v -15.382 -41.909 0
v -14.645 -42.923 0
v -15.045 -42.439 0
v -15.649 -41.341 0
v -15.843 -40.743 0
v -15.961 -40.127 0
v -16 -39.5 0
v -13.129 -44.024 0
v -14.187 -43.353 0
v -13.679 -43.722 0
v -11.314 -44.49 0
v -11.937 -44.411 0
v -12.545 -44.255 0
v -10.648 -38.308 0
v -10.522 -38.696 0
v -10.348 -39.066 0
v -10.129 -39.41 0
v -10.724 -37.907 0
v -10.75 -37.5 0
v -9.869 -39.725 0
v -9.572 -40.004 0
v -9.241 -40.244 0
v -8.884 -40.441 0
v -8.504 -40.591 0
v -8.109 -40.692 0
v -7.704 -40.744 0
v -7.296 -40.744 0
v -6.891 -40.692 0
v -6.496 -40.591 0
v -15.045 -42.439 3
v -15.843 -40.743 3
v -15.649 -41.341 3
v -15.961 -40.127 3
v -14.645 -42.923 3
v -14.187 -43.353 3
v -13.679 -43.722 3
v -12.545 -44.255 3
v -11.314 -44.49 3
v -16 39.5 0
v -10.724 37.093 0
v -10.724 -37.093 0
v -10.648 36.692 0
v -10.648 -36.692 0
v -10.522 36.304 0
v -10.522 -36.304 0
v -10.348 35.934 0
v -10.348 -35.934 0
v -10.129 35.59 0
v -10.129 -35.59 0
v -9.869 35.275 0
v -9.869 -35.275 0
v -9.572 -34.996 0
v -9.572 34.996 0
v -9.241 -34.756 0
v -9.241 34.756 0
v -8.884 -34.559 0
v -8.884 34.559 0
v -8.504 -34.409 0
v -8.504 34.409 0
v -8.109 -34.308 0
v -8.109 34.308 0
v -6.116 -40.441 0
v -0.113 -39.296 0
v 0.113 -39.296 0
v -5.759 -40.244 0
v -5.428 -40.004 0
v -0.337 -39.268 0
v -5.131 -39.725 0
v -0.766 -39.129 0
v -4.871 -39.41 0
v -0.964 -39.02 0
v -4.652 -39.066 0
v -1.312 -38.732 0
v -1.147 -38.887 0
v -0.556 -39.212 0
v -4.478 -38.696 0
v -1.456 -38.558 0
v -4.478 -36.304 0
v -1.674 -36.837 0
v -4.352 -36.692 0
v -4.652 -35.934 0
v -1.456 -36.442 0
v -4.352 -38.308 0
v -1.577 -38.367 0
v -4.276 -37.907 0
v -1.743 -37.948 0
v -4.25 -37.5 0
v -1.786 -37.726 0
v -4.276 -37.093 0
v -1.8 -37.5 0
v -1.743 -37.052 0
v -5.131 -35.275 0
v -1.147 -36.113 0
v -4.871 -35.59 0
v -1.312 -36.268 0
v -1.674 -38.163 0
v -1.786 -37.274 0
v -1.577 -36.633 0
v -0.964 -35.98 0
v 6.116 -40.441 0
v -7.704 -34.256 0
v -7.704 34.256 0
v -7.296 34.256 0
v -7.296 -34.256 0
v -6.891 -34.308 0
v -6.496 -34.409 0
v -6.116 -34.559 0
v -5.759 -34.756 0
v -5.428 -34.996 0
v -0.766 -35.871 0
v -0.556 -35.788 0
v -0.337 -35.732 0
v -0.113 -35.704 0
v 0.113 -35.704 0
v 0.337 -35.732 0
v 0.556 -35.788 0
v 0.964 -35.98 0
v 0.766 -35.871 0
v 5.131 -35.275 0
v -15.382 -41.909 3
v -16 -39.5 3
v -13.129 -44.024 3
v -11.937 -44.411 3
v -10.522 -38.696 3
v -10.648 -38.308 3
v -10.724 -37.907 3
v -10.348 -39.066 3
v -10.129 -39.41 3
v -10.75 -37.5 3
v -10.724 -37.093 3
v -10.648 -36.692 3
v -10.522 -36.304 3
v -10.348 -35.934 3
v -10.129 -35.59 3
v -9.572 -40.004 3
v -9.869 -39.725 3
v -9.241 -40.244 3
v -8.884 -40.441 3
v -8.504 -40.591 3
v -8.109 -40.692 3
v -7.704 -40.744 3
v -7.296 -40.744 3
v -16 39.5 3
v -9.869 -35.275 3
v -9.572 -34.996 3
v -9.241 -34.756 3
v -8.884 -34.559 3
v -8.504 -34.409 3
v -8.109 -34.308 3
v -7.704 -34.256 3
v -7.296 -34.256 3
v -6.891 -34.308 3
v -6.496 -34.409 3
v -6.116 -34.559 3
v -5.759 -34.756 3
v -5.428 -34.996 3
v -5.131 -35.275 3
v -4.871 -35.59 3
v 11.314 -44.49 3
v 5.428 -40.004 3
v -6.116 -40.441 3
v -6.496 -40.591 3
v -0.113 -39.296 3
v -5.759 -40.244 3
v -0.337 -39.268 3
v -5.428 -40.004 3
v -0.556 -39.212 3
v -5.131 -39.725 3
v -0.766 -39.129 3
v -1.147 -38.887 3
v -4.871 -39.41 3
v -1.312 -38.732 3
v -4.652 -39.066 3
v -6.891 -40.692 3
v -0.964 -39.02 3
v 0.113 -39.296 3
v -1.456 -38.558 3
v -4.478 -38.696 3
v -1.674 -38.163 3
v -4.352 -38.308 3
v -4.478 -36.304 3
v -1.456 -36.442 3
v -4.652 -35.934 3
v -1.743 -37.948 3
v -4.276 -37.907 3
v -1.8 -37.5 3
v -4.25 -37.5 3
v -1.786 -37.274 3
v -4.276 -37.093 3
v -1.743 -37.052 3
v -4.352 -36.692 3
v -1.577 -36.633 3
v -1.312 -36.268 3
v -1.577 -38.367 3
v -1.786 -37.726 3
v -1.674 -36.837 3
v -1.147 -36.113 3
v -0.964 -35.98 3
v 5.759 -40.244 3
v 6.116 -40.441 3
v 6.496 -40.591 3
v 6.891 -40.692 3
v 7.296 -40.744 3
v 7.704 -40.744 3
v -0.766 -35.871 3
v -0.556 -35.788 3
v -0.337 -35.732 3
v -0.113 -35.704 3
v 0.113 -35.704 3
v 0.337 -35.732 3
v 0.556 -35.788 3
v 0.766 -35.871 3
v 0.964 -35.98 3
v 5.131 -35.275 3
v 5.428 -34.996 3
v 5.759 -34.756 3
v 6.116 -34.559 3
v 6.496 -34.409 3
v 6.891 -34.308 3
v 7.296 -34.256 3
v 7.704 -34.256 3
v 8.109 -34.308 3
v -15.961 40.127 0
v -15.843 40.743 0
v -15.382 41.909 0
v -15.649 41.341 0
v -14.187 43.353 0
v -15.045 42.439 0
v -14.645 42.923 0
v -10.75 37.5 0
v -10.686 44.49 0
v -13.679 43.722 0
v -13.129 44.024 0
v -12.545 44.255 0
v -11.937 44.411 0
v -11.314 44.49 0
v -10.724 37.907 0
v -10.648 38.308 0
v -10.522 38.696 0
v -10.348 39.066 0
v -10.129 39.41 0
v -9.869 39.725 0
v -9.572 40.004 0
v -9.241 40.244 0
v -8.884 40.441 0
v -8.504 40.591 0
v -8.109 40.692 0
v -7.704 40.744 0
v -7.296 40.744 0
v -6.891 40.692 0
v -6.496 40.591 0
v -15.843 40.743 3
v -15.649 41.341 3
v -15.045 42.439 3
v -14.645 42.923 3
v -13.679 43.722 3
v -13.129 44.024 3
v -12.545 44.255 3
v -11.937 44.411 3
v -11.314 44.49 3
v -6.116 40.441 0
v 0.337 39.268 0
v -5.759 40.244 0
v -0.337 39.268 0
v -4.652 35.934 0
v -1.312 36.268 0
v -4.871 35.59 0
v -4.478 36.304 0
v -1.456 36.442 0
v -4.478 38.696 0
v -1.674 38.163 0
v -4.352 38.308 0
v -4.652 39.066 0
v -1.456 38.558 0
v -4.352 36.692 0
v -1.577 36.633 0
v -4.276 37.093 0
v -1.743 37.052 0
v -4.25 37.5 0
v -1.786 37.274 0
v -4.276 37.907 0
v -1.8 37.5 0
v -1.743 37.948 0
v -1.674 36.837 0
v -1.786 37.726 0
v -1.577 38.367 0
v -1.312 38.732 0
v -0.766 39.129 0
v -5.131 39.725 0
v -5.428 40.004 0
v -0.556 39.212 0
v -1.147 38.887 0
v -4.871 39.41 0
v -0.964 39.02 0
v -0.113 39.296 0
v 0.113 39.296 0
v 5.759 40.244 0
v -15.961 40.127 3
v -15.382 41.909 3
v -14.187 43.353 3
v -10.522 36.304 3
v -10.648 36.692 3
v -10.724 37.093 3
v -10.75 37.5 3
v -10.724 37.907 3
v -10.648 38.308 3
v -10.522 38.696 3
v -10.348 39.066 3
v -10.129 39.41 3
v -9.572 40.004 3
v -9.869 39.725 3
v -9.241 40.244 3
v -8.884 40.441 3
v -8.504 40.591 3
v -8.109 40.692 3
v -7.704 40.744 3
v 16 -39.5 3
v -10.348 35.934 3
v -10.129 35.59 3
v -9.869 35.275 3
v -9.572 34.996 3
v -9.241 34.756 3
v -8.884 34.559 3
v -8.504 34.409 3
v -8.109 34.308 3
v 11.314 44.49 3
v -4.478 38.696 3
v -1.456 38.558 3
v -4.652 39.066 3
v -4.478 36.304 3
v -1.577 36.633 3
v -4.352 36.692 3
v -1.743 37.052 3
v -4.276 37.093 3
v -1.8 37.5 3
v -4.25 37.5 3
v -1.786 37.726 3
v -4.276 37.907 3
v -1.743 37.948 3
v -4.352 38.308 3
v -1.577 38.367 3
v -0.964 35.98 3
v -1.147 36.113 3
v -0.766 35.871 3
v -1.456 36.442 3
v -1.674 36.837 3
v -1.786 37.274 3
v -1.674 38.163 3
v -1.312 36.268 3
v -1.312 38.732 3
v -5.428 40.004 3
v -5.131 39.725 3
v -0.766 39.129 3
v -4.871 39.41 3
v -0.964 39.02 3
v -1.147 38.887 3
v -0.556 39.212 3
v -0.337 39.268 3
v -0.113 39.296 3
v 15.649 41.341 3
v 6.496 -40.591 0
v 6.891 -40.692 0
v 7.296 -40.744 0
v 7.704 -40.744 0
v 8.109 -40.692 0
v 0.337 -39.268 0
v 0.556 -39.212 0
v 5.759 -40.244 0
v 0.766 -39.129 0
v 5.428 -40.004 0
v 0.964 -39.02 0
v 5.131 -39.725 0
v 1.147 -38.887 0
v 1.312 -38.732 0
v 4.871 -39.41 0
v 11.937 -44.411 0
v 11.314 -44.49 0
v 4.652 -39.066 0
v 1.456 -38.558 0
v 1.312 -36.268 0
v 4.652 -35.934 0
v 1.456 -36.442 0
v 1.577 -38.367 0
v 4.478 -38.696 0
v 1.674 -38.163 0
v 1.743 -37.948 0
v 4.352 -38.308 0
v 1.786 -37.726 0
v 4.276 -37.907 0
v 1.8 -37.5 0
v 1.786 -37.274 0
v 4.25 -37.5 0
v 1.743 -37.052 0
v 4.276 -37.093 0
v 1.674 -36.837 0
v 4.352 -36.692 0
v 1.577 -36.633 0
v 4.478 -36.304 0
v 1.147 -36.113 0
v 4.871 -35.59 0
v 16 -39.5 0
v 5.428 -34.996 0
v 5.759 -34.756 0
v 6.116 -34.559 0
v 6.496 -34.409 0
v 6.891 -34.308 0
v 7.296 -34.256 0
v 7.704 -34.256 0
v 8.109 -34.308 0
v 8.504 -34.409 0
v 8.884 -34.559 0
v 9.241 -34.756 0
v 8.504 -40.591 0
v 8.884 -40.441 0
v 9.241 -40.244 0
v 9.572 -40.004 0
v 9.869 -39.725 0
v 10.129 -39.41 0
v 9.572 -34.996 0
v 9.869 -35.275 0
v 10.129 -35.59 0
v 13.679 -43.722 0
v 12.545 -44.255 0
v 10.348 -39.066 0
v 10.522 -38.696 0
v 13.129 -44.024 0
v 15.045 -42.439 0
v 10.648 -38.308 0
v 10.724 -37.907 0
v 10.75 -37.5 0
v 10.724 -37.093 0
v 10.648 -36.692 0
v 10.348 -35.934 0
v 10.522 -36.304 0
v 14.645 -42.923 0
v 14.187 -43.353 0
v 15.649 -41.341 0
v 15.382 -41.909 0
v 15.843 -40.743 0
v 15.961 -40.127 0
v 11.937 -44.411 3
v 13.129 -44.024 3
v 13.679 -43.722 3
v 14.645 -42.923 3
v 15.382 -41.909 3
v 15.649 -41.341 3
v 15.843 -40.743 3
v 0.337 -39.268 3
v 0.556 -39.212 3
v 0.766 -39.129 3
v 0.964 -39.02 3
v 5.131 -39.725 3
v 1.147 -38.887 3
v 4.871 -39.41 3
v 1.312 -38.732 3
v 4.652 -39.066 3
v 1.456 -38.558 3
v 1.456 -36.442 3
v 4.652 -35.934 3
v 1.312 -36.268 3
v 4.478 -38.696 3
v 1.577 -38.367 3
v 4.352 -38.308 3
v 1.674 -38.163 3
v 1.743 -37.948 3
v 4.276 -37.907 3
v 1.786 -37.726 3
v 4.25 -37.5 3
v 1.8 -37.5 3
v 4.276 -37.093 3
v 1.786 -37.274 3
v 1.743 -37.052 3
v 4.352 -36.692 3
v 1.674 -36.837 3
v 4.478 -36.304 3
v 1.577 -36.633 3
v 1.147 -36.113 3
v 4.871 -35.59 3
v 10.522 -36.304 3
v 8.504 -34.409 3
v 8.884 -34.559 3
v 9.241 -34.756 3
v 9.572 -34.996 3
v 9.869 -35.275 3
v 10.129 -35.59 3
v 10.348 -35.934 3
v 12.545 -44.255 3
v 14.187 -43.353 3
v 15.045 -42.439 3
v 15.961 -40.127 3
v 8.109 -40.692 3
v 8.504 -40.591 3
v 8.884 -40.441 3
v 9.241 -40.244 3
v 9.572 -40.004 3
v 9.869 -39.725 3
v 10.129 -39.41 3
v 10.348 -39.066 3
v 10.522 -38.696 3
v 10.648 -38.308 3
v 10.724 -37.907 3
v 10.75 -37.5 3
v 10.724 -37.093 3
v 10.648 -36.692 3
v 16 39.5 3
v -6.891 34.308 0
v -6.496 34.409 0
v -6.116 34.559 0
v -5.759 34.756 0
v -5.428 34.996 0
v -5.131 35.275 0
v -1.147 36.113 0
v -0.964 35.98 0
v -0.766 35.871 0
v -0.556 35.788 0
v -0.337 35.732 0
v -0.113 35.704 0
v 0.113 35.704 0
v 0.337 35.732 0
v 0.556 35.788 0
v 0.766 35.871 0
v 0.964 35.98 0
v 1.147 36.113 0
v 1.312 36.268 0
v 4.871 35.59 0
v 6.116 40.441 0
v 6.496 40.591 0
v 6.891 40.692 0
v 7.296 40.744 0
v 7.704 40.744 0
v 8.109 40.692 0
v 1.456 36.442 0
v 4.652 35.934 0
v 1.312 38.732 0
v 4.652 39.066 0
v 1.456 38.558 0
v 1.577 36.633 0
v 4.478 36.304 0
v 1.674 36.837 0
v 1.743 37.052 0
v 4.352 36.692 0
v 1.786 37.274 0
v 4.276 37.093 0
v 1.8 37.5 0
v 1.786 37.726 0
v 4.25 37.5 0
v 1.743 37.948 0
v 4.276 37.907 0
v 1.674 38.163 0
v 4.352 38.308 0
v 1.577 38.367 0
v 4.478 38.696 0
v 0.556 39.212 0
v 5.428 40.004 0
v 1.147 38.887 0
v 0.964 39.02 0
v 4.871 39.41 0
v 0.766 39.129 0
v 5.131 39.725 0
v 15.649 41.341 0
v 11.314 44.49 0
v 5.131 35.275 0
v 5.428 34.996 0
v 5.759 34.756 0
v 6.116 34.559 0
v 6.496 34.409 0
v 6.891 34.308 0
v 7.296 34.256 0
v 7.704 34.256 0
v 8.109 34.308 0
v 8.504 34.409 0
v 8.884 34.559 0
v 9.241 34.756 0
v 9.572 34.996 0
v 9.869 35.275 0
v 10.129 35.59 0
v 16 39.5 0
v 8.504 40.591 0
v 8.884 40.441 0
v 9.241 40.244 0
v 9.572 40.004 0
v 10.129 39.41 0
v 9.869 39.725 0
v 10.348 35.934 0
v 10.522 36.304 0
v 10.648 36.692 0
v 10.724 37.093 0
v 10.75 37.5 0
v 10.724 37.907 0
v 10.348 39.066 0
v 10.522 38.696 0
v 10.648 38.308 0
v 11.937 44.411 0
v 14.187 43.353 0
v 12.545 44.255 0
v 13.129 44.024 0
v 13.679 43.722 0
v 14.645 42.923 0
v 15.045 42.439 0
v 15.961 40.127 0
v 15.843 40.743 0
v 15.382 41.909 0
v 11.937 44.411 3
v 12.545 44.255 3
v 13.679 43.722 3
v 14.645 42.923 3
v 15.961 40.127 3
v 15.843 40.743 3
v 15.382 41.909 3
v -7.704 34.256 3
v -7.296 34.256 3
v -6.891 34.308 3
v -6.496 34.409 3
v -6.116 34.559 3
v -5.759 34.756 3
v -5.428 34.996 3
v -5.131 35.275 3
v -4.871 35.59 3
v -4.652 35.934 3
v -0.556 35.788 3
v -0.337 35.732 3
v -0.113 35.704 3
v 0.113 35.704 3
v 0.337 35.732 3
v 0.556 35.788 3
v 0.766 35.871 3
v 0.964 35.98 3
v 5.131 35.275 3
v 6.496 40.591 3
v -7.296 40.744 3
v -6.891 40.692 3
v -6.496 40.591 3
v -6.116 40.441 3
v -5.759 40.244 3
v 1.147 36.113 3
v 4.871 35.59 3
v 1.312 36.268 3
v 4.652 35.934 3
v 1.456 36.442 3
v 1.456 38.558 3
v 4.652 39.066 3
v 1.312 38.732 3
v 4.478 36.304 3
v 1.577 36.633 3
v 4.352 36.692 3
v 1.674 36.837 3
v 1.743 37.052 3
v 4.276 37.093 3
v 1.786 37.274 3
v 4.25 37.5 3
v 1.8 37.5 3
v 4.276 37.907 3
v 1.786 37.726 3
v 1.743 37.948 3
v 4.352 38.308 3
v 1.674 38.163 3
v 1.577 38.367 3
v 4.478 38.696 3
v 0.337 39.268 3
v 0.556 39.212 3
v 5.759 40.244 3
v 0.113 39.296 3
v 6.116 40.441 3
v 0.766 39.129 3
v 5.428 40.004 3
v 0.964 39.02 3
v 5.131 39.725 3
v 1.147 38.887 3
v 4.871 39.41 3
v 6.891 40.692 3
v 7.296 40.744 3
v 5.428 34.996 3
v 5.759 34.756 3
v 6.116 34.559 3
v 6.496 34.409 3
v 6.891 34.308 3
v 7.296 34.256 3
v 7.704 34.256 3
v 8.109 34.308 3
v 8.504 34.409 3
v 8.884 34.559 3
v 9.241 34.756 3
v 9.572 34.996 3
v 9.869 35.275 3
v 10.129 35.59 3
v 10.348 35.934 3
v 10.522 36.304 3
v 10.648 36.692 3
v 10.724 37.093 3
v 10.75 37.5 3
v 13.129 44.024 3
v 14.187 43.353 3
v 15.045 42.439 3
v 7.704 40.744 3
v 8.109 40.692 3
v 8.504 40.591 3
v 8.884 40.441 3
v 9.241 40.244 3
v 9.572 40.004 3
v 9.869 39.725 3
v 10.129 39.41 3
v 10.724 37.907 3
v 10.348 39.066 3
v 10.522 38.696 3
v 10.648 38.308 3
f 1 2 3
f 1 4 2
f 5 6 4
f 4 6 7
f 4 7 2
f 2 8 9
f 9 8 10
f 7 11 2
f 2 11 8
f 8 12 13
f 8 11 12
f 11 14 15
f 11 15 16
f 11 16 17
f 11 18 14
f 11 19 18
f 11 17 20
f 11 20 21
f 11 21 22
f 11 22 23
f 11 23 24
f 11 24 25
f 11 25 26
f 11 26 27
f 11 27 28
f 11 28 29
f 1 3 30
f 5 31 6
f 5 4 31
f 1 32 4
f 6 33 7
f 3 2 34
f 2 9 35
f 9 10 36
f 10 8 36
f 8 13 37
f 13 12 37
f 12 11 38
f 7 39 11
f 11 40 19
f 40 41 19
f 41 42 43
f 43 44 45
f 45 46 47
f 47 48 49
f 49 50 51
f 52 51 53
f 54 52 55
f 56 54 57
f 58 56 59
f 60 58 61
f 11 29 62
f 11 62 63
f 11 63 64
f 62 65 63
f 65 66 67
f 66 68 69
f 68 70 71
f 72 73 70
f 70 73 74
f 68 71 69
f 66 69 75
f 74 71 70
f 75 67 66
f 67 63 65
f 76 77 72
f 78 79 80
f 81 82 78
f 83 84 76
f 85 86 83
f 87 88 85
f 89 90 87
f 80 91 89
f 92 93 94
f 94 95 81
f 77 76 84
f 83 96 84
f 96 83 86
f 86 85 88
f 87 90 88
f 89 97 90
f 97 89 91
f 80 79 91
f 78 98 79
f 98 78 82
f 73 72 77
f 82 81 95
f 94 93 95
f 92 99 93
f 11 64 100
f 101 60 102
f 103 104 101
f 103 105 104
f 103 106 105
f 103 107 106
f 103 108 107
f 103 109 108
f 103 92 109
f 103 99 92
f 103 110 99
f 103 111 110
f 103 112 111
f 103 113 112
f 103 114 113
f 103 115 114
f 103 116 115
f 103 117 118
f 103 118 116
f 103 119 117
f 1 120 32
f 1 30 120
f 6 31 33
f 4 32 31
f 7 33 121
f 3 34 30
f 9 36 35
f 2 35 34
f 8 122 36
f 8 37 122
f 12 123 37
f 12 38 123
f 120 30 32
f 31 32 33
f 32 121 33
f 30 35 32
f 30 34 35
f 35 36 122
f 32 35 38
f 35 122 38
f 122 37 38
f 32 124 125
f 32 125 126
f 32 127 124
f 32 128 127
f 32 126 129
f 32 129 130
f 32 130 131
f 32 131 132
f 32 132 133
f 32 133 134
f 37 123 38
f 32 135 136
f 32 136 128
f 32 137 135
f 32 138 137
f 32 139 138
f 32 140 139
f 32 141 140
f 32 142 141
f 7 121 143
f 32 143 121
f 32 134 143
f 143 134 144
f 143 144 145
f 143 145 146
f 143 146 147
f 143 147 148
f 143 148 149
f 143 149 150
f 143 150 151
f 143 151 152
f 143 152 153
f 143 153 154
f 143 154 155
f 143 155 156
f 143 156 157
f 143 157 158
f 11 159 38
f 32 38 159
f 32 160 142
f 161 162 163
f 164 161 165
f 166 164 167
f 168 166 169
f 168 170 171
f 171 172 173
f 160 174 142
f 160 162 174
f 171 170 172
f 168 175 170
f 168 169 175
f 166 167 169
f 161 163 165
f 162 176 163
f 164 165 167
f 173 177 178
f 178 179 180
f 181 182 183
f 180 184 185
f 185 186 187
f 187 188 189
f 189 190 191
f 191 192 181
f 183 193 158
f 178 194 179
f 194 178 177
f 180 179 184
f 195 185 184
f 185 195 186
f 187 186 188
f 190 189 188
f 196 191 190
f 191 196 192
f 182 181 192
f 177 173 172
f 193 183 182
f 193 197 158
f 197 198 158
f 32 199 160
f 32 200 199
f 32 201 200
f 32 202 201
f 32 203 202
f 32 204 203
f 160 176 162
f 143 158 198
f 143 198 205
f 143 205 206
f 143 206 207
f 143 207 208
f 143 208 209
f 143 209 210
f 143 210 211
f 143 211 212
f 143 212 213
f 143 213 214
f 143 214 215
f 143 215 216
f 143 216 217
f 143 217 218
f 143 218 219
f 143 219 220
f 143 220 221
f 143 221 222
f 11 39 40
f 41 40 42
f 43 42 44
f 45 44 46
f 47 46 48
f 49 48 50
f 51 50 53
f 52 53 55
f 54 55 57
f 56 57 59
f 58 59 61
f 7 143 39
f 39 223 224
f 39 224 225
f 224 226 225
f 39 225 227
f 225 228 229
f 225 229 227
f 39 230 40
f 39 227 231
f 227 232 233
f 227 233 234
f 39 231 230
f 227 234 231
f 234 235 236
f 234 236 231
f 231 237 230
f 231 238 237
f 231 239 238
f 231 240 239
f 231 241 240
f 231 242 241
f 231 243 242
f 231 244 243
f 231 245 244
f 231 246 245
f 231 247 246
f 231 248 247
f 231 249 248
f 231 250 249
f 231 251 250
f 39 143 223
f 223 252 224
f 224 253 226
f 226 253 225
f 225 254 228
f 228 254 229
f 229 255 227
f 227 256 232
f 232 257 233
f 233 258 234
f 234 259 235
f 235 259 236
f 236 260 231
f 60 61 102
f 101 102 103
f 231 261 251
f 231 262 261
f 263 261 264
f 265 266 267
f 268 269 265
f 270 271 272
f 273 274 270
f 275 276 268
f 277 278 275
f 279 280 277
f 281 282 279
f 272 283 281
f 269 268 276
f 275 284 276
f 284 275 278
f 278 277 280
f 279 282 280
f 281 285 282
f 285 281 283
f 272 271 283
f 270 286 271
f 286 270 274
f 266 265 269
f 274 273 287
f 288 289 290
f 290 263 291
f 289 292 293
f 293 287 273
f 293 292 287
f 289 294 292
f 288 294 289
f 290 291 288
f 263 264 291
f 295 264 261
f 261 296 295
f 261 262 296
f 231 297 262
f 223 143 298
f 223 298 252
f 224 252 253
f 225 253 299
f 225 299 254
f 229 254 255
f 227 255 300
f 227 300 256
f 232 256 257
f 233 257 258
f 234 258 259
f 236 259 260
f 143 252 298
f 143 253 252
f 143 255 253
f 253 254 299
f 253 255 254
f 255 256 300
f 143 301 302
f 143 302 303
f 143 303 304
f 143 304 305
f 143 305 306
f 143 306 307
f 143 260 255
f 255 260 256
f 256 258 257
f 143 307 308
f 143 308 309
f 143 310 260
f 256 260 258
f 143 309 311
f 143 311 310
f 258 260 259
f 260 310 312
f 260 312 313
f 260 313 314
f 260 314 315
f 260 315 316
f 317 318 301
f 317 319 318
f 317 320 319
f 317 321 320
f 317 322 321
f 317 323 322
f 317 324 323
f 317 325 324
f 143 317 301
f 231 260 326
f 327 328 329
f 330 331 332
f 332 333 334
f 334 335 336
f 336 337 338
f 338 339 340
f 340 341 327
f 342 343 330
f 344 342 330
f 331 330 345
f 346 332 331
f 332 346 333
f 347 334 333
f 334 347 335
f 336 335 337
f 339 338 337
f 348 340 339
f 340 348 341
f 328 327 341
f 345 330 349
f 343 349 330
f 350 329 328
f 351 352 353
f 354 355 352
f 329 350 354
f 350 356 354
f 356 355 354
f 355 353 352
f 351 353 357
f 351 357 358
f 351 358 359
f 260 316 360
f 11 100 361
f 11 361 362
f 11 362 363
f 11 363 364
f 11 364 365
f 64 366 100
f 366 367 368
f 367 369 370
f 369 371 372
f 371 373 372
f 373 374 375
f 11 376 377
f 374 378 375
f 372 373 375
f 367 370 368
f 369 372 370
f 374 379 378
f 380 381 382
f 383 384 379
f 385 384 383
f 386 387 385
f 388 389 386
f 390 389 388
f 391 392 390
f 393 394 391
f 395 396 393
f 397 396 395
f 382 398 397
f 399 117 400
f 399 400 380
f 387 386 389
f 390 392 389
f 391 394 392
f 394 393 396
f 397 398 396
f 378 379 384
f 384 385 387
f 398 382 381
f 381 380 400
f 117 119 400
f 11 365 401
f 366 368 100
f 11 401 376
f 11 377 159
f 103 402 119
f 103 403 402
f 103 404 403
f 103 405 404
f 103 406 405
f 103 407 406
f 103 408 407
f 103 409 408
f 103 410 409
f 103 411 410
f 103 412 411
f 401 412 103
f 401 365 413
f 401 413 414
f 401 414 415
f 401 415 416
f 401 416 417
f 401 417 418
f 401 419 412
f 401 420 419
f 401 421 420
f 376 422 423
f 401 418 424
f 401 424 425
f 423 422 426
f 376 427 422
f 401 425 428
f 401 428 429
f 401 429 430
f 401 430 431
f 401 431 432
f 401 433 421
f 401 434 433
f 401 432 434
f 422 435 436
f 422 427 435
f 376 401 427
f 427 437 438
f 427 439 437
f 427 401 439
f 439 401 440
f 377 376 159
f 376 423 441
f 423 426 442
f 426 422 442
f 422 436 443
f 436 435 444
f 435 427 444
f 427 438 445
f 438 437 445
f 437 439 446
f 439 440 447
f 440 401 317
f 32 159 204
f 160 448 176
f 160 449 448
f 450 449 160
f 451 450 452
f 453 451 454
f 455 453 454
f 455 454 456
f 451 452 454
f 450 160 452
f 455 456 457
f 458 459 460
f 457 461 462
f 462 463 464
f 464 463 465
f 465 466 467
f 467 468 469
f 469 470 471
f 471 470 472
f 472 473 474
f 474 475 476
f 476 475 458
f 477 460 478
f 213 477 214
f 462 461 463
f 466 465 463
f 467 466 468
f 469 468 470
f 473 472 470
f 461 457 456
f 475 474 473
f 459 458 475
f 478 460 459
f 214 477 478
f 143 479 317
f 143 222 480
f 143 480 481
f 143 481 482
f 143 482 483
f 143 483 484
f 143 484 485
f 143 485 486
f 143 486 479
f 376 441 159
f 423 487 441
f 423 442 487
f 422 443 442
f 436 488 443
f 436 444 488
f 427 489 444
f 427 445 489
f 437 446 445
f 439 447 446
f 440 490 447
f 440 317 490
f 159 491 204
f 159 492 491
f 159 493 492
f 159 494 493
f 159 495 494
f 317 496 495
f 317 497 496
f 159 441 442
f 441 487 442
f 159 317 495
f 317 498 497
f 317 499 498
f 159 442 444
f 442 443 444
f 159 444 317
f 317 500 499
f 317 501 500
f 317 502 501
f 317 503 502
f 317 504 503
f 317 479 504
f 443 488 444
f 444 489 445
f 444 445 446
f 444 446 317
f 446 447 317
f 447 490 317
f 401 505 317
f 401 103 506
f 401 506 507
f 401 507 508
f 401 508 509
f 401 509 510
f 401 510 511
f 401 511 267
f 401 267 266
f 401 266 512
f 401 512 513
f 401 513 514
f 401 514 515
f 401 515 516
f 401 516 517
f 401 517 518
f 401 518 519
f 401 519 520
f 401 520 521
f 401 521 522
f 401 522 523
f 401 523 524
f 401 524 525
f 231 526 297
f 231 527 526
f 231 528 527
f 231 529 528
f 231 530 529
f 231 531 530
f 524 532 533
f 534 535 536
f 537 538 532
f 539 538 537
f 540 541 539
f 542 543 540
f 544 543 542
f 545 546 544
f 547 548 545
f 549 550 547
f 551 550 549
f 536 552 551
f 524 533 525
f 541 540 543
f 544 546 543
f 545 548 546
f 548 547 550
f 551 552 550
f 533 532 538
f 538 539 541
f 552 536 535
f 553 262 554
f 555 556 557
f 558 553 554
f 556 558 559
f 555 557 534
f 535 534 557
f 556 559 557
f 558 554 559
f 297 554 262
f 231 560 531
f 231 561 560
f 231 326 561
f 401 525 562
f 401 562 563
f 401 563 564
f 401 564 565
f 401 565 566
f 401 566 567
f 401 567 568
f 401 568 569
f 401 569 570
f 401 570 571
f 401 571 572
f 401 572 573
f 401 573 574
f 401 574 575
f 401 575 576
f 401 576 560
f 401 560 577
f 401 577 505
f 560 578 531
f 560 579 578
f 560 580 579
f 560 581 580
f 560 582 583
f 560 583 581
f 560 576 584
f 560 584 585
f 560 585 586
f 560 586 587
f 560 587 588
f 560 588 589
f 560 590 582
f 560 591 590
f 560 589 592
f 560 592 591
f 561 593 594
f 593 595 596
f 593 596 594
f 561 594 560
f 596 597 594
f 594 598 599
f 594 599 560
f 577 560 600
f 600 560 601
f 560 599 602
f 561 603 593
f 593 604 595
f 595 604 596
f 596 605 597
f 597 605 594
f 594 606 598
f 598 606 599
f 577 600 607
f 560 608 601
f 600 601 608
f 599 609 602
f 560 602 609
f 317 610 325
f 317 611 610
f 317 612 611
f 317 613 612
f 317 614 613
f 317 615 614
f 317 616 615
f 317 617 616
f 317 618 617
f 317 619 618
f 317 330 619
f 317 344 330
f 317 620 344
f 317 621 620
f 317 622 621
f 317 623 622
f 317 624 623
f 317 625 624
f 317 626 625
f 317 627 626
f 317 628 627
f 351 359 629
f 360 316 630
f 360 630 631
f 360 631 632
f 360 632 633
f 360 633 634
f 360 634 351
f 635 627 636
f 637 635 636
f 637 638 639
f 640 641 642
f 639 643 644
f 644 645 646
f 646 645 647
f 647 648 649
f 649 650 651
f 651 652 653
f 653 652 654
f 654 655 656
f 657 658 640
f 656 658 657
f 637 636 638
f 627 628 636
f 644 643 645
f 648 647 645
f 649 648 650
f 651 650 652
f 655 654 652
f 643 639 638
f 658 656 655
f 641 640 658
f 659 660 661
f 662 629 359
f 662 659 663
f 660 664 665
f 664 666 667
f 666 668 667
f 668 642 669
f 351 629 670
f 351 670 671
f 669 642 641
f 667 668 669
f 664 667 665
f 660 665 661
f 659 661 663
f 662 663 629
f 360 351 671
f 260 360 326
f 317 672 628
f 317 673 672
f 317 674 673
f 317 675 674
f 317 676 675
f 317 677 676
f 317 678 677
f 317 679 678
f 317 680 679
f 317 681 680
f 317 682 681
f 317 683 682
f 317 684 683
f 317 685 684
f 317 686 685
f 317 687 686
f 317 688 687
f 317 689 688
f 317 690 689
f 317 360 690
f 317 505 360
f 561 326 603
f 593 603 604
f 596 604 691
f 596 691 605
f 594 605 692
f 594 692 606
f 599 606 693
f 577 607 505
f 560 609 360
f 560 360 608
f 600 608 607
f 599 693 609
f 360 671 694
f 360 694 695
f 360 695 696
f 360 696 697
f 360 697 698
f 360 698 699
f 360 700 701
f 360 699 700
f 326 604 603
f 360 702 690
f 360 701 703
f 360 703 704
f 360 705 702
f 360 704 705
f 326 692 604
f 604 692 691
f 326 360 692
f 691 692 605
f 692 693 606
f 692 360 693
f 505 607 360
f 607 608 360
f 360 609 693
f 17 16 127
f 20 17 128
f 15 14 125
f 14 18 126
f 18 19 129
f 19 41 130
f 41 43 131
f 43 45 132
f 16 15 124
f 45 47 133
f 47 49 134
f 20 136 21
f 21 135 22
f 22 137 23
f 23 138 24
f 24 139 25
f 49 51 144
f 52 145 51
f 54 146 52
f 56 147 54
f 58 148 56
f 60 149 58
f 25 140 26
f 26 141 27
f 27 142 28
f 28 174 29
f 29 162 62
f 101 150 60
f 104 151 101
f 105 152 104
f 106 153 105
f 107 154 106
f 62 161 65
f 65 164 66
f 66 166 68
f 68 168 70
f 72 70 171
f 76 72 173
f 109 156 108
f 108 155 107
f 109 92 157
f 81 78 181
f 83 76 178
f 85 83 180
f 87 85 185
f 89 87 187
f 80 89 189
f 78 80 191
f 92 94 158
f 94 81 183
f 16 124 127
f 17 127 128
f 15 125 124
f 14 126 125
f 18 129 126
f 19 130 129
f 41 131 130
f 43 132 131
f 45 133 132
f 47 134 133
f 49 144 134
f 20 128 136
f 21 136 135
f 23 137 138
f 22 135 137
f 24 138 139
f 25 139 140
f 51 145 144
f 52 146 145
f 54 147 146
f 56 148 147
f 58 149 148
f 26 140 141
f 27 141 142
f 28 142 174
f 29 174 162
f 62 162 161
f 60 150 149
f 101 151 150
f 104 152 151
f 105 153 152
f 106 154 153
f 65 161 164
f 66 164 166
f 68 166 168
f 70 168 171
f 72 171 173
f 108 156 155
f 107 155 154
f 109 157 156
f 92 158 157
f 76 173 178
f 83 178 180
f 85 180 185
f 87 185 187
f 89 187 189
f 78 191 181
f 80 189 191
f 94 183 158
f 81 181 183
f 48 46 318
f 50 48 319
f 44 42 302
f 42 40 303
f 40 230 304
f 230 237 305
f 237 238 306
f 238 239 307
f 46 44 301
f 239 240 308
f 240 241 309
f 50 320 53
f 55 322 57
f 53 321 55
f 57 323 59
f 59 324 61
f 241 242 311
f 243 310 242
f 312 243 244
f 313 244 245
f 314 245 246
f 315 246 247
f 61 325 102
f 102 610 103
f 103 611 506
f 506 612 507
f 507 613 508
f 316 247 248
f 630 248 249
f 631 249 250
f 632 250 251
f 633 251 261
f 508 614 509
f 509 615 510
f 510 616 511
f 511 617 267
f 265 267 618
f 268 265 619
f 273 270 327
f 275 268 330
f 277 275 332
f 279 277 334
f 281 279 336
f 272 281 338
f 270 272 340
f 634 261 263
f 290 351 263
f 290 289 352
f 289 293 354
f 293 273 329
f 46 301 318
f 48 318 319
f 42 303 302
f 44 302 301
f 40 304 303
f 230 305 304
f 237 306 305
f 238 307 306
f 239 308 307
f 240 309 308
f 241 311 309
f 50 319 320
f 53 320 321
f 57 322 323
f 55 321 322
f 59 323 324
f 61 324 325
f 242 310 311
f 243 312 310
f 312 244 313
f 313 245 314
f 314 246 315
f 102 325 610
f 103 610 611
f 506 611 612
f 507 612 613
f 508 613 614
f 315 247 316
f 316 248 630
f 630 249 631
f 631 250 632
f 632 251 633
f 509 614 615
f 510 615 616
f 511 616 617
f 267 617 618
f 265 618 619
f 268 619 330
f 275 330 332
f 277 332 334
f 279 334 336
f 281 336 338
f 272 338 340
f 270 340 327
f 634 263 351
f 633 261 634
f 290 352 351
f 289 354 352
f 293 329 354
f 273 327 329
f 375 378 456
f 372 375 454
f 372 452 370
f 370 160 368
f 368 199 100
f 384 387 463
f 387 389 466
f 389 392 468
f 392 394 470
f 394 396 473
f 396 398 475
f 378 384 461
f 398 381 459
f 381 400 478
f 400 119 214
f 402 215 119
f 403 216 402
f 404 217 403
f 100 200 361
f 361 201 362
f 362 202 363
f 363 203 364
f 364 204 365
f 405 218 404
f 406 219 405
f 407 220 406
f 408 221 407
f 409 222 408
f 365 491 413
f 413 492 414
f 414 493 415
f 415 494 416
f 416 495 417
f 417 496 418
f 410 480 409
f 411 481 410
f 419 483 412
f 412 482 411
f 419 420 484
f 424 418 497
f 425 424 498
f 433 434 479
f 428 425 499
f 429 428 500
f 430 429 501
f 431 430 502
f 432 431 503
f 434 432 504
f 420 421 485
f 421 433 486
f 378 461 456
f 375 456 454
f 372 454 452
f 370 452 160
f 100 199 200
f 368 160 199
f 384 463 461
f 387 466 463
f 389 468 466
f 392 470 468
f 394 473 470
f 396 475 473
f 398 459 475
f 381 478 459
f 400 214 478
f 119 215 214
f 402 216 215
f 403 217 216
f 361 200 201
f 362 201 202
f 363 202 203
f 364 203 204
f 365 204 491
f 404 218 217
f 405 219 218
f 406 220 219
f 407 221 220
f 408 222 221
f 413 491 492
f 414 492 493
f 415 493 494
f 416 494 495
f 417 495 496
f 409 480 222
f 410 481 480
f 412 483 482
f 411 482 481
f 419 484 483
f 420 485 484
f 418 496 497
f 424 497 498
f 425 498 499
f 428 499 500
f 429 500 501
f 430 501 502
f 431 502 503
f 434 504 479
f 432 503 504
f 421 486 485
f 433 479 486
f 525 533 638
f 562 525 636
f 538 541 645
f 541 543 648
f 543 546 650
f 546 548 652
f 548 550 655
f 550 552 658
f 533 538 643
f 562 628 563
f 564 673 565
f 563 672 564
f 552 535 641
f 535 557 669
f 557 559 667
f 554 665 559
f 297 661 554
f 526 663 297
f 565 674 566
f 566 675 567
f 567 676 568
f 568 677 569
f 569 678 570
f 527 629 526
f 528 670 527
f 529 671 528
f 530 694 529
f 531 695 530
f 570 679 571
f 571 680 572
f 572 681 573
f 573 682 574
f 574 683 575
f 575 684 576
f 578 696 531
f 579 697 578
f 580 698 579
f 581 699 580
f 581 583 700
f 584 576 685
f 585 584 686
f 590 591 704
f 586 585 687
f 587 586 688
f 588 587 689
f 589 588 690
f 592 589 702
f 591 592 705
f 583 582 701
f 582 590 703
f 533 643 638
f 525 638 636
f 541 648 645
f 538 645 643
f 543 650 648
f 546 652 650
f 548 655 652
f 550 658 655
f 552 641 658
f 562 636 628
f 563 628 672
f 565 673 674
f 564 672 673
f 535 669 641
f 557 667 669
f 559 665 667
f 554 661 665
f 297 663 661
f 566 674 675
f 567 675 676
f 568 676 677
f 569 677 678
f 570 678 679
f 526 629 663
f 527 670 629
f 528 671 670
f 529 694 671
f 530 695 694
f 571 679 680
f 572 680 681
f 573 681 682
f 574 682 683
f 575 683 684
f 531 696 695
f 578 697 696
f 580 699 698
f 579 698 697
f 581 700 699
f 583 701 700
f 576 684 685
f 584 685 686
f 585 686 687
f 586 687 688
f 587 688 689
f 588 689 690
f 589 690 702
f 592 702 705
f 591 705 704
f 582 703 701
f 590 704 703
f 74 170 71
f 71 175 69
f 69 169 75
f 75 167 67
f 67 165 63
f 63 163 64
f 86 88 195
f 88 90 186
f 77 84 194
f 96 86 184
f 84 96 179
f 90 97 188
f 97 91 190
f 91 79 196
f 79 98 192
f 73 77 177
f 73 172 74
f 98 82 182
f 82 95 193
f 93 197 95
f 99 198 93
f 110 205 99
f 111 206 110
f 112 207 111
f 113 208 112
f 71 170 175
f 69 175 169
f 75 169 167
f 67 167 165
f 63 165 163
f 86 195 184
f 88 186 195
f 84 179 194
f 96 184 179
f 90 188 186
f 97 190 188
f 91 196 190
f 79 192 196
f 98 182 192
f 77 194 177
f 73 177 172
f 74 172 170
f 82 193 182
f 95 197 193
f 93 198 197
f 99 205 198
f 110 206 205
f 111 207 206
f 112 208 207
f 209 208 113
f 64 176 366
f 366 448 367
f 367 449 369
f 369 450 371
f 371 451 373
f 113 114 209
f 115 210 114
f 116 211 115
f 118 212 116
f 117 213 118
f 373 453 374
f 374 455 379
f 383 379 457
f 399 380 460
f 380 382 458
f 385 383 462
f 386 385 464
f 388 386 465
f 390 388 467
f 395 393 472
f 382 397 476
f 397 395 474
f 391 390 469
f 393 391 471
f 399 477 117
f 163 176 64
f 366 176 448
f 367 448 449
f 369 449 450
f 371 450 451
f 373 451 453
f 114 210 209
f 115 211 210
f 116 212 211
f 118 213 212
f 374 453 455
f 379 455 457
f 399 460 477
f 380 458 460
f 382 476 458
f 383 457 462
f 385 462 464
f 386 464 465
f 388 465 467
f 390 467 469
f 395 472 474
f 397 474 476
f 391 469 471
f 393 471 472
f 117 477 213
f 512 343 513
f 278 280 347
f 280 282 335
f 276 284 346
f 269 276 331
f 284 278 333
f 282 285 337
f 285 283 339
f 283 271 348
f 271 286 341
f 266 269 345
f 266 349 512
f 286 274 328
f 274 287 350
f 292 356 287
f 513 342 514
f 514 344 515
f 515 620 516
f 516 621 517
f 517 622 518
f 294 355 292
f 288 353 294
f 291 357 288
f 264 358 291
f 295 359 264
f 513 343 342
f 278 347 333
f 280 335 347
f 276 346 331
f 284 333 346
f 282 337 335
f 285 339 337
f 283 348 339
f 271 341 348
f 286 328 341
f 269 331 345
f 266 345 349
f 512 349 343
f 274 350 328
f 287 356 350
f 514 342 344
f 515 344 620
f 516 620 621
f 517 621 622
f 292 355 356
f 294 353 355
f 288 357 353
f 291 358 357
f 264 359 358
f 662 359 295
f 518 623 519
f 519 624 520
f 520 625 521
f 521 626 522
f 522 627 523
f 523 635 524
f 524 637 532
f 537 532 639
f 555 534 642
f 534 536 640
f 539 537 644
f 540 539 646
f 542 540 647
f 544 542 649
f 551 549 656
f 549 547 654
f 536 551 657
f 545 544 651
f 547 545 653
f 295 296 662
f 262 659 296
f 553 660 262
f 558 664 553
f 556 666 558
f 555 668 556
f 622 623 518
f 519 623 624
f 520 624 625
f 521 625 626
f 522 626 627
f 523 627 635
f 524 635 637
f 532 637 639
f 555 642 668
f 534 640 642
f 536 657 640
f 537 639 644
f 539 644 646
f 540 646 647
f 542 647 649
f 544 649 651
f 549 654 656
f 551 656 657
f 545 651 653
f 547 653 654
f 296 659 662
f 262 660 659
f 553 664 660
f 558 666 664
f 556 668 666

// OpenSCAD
$fn = 50;

difference() {
	union() {
		hull() {
			translate(v = [-11.0, 39.5, 0]) {
				cylinder(h = 3, r = 5);
			}
			translate(v = [11.0, 39.5, 0]) {
				cylinder(h = 3, r = 5);
			}
			translate(v = [-11.0, -39.5, 0]) {
				cylinder(h = 3, r = 5);
			}
			translate(v = [11.0, -39.5, 0]) {
				cylinder(h = 3, r = 5);
			}
		}
	}
	union() {
		translate(v = [-7.5, -37.5, -1]) {
			cylinder(h = 5, r = 3.25);
		}
		translate(v = [-7.5, 37.5, -1]) {
			cylinder(h = 5, r = 3.25);
		}
		translate(v = [7.5, -37.5, -1]) {
			cylinder(h = 5, r = 3.25);
		}
		translate(v = [7.5, 37.5, -1]) {
			cylinder(h = 5, r = 3.25);
		}
		translate(v = [0.0, -37.5, -1]) {
			cylinder(h = 5, r = 1.8);
		}
		translate(v = [0.0, 37.5, -1]) {
			cylinder(h = 5, r = 1.8);
		}
	}
}
